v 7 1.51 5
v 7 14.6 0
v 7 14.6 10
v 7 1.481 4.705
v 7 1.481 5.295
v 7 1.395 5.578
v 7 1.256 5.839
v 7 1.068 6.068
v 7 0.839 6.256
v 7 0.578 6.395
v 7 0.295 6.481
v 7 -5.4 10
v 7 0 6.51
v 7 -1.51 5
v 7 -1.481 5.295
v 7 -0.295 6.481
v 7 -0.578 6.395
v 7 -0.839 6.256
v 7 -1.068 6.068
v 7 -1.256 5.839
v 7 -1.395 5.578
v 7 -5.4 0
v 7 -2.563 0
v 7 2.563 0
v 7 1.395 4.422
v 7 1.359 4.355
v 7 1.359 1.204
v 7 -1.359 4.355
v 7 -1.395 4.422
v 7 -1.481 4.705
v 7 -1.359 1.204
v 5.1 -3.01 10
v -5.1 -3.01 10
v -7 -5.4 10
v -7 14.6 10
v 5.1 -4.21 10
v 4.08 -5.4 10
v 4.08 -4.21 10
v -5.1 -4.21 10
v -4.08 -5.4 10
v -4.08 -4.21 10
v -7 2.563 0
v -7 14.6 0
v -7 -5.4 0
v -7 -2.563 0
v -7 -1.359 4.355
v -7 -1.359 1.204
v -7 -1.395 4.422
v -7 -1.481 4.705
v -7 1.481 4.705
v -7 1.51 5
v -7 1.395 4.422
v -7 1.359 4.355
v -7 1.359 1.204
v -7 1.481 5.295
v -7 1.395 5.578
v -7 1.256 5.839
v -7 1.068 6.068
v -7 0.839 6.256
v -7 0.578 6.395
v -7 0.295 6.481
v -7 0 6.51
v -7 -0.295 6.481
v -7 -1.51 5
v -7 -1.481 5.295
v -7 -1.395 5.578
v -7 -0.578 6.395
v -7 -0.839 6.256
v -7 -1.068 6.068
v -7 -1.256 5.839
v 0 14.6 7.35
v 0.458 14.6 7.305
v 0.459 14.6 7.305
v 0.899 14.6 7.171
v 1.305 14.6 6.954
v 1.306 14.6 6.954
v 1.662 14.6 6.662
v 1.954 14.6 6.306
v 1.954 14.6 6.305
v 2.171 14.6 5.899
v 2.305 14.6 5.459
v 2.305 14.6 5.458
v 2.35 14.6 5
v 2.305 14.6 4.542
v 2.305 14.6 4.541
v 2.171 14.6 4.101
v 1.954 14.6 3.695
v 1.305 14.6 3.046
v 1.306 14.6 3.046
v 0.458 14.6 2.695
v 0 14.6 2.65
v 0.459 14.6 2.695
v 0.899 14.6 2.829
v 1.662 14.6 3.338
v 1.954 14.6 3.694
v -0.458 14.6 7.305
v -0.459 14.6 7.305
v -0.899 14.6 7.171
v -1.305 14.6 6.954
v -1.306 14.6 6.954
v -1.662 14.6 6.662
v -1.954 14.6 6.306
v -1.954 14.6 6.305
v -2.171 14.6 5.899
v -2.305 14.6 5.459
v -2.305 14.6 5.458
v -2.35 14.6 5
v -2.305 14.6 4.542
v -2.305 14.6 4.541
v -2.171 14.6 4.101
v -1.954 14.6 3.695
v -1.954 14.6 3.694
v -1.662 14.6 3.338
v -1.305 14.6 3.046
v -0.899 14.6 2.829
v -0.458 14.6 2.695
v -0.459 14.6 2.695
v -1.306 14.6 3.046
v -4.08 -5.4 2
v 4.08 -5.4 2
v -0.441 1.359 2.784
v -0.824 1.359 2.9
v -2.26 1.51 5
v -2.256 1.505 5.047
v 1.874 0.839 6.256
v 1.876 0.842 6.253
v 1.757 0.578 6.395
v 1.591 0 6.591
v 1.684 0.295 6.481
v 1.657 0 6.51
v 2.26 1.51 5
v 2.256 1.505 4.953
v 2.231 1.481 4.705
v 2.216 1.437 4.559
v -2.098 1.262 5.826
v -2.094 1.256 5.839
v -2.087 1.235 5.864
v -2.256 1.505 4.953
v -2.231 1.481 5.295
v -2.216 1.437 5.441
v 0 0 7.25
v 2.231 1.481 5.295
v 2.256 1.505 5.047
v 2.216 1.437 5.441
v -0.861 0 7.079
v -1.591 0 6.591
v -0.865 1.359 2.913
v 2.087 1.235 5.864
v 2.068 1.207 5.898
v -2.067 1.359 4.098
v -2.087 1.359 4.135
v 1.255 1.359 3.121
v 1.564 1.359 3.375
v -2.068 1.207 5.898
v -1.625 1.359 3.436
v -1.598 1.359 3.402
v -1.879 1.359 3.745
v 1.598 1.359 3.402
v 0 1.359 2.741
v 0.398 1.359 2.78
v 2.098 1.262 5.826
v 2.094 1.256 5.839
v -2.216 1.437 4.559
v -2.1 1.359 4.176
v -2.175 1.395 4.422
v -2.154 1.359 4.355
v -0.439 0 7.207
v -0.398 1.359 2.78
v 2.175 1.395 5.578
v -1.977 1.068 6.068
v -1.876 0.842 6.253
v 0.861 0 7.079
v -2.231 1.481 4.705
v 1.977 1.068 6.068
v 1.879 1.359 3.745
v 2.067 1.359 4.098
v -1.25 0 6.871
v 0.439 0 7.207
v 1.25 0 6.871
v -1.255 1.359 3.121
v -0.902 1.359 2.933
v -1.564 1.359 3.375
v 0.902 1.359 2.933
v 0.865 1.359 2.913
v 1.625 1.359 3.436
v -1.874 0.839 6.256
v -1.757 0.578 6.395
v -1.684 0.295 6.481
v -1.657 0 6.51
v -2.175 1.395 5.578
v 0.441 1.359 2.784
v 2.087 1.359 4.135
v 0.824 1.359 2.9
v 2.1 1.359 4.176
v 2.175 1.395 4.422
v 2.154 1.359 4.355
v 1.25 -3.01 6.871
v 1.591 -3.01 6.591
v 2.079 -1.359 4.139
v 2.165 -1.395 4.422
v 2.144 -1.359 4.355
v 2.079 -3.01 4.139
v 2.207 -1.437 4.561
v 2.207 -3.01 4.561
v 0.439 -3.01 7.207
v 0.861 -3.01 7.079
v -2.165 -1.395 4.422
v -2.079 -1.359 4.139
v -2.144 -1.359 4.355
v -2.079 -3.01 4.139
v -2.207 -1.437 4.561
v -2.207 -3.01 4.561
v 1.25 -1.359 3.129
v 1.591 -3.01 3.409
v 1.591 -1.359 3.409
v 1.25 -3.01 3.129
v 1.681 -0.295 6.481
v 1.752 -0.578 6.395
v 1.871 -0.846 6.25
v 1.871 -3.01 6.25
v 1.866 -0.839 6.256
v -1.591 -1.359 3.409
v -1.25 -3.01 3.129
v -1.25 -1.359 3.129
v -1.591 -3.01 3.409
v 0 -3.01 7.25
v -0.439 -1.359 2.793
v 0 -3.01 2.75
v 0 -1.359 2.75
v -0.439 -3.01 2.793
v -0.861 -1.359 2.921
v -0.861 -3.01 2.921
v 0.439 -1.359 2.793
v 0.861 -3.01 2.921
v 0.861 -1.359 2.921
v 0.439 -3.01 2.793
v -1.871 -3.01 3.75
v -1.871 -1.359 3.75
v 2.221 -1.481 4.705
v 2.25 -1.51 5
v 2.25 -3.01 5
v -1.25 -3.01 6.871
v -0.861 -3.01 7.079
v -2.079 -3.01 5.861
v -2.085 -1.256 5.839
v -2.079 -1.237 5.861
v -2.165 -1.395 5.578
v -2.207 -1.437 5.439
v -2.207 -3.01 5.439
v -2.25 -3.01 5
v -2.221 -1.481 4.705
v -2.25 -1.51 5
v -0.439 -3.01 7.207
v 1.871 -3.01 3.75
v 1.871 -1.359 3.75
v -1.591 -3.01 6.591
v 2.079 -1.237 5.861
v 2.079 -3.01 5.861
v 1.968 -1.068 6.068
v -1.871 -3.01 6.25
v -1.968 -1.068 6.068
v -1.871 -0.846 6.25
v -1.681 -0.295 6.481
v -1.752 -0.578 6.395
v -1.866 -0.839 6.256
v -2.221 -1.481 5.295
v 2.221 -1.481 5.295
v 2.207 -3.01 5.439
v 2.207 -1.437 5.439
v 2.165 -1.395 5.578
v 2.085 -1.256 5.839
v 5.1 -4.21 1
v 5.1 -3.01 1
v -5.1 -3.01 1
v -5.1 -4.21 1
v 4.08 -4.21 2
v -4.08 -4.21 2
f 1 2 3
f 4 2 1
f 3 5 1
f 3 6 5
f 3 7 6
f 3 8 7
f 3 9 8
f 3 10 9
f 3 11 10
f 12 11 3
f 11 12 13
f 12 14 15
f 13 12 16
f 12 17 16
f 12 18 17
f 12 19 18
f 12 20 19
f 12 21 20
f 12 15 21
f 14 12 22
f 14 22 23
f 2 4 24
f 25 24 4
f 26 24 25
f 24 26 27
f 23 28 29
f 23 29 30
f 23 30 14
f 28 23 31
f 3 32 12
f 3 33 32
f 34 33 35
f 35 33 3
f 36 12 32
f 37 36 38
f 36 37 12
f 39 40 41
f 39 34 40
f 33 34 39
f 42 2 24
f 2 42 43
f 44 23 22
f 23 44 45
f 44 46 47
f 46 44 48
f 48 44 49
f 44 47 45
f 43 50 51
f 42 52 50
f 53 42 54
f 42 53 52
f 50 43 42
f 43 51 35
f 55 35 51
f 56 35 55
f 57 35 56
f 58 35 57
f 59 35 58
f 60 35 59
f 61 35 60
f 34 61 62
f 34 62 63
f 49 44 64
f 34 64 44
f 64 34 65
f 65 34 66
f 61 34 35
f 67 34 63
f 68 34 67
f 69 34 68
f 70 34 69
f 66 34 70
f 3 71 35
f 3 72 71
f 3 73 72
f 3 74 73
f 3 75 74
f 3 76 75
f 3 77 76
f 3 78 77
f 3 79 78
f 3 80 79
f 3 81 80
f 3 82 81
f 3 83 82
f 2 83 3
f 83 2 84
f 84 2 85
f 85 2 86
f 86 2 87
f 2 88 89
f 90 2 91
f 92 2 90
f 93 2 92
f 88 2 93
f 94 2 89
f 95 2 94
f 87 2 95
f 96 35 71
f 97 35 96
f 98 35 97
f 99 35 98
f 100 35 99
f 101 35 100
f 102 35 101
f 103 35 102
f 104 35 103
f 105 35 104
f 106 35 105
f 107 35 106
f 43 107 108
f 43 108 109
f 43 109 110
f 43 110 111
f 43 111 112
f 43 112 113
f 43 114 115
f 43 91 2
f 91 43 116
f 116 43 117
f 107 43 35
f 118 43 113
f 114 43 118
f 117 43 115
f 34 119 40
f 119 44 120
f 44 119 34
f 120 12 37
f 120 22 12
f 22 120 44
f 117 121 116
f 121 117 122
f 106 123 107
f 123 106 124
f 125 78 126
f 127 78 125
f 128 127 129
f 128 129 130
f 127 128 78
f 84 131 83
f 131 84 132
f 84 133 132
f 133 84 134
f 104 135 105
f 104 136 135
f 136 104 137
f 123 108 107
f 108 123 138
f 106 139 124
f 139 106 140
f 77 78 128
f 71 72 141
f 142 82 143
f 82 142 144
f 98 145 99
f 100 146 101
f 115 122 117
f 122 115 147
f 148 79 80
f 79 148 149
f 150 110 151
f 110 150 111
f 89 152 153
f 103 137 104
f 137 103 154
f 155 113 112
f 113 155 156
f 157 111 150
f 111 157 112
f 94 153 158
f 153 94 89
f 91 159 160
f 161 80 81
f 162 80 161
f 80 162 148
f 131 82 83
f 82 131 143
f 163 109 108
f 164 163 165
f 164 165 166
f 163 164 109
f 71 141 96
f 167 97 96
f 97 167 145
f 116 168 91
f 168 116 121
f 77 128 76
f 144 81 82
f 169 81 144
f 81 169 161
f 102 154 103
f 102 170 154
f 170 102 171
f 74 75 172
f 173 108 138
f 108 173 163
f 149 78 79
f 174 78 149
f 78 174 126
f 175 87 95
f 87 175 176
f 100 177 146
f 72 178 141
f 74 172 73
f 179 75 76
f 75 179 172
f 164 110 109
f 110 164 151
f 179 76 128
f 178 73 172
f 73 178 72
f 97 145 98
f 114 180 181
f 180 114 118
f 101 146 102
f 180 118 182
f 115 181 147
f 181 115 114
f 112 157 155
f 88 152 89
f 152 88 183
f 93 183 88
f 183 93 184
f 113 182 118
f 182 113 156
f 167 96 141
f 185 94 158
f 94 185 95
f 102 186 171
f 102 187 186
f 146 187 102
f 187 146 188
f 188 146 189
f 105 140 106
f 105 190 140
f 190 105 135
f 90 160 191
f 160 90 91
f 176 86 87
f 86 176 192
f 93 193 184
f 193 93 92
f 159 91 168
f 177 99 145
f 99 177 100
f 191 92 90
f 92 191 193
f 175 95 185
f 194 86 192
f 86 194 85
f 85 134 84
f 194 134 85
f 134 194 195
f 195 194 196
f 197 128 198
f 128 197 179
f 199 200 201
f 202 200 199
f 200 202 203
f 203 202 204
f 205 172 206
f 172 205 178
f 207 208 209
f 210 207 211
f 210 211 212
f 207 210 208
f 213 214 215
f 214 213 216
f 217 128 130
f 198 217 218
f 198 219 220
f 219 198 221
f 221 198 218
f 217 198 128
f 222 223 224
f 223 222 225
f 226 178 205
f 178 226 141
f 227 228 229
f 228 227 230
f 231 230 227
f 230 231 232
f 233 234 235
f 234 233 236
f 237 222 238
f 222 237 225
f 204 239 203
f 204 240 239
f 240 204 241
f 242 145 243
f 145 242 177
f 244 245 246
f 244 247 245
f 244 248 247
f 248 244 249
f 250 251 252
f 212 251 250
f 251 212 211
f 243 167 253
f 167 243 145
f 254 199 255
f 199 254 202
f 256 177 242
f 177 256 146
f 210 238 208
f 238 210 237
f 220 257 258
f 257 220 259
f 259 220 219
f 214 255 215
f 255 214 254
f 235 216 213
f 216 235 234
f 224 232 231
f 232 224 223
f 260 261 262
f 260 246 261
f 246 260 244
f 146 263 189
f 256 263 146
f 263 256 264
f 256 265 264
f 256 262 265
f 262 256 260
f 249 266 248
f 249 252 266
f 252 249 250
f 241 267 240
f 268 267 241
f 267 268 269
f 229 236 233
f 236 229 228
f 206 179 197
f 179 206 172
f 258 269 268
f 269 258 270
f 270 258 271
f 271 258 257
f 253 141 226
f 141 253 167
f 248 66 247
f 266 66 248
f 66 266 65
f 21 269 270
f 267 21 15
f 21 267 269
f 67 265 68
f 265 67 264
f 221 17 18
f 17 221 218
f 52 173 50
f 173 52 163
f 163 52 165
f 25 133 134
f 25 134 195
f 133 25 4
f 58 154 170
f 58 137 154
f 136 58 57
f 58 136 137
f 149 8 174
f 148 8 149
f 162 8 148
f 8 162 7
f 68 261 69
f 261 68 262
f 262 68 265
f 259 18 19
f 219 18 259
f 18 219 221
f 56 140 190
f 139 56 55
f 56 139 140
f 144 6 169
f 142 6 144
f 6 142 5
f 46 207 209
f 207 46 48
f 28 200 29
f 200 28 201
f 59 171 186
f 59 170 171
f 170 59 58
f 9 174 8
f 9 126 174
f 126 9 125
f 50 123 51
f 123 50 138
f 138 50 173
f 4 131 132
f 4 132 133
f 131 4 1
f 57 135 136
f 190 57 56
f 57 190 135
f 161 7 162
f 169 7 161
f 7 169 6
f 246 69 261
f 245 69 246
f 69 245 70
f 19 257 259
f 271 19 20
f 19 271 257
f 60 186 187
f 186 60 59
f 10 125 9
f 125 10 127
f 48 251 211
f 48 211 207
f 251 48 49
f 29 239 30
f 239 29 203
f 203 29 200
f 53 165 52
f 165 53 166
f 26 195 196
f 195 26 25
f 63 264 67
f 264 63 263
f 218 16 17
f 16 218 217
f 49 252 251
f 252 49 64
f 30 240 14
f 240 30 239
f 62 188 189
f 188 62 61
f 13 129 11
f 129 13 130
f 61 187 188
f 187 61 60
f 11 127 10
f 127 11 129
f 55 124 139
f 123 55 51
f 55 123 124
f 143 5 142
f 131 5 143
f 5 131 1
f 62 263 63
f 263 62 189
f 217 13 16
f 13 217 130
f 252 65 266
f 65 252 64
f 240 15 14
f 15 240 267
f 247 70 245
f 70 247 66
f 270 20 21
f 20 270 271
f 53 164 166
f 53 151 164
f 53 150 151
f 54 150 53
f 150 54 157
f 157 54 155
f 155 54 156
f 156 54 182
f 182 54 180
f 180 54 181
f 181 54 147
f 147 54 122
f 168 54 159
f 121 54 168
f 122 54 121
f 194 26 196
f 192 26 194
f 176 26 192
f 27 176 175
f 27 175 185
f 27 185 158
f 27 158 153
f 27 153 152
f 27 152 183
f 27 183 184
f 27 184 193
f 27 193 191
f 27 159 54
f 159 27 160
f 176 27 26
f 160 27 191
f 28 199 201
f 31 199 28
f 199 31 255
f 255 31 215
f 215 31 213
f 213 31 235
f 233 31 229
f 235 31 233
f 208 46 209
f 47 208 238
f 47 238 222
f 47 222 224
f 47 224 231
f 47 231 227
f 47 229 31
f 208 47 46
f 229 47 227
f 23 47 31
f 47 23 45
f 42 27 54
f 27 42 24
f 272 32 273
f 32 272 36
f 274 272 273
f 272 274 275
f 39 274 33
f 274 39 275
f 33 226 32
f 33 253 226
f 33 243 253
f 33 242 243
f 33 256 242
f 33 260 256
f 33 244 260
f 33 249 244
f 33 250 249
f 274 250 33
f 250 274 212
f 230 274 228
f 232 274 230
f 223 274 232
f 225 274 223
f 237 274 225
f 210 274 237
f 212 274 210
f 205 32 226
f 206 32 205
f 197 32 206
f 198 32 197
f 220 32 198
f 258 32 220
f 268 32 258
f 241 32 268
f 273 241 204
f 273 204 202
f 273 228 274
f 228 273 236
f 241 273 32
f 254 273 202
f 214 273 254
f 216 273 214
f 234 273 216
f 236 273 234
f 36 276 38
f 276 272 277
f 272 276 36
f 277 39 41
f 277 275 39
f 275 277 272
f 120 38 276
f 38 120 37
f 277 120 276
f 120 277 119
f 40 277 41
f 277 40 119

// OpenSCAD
/*

  light_connector.scad
   
  
  3mm x 120mm
  https://www.greenstuffworld.com/de/flugbasestaebe/600-3-mm-runde-acryl-staebe-transparent.html
  
*/
$fn=32;

width=14;
height=10;
length=20;
boxmove=1.6;
edgeDia = 3.02;
outerLWDia = 4.7;
innerLWDia = 4.5;
clipWidth = 10.2;
clipHeight = height;
clipThinkness = 1.2;
clipXWidth = clipWidth*0.8;
clipXThinkness = width;
clipXOffset = 1; 
clipOffset = 1; /* offset of the clip cutout above ground */
clipDistance = 1.5; /* distance from the edge to the clip=wall between edge and clip */

difference() {
  translate([-width/2, -width/2+boxmove,0])
  cube([width, length, height]);

  /* LWL cutout */

  translate([0,0,height/2])
  rotate([-90,0,0])
  cylinder(d1=innerLWDia, d2=outerLWDia, h=length-width/2+boxmove+0.01);

  /* touch pad reflection hole */

  translate([0,-width,height/2])
  rotate([-90,0,0])
  cylinder(d=innerLWDia, h=length);

  /* ikosidodekaeder edge cutout */
  
  translate([0,0,height/2])
  rotate([0,90,0])
  cylinder(d=edgeDia, h=width+0.02, center=true);
  
  translate([0,0,-edgeDia*0.2])  
  cube([width+0.02, edgeDia*0.9, height], center=true);

  /* chamfer to reduce issues with brim */
  
  rotate([45,0,0])
  cube([width+0.02, edgeDia*1.2, edgeDia*1.2], center=true);

  /* battery clip cutout */
  
  translate([-clipWidth/2,-clipThinkness-edgeDia/2-clipDistance,clipOffset])
  cube([clipWidth, clipThinkness, clipHeight]);

  translate([-clipXWidth/2,-clipXThinkness-clipThinkness-edgeDia/2-clipDistance+0.01,clipXOffset+clipOffset])
  cube([clipXWidth, clipXThinkness, clipHeight]);
}
